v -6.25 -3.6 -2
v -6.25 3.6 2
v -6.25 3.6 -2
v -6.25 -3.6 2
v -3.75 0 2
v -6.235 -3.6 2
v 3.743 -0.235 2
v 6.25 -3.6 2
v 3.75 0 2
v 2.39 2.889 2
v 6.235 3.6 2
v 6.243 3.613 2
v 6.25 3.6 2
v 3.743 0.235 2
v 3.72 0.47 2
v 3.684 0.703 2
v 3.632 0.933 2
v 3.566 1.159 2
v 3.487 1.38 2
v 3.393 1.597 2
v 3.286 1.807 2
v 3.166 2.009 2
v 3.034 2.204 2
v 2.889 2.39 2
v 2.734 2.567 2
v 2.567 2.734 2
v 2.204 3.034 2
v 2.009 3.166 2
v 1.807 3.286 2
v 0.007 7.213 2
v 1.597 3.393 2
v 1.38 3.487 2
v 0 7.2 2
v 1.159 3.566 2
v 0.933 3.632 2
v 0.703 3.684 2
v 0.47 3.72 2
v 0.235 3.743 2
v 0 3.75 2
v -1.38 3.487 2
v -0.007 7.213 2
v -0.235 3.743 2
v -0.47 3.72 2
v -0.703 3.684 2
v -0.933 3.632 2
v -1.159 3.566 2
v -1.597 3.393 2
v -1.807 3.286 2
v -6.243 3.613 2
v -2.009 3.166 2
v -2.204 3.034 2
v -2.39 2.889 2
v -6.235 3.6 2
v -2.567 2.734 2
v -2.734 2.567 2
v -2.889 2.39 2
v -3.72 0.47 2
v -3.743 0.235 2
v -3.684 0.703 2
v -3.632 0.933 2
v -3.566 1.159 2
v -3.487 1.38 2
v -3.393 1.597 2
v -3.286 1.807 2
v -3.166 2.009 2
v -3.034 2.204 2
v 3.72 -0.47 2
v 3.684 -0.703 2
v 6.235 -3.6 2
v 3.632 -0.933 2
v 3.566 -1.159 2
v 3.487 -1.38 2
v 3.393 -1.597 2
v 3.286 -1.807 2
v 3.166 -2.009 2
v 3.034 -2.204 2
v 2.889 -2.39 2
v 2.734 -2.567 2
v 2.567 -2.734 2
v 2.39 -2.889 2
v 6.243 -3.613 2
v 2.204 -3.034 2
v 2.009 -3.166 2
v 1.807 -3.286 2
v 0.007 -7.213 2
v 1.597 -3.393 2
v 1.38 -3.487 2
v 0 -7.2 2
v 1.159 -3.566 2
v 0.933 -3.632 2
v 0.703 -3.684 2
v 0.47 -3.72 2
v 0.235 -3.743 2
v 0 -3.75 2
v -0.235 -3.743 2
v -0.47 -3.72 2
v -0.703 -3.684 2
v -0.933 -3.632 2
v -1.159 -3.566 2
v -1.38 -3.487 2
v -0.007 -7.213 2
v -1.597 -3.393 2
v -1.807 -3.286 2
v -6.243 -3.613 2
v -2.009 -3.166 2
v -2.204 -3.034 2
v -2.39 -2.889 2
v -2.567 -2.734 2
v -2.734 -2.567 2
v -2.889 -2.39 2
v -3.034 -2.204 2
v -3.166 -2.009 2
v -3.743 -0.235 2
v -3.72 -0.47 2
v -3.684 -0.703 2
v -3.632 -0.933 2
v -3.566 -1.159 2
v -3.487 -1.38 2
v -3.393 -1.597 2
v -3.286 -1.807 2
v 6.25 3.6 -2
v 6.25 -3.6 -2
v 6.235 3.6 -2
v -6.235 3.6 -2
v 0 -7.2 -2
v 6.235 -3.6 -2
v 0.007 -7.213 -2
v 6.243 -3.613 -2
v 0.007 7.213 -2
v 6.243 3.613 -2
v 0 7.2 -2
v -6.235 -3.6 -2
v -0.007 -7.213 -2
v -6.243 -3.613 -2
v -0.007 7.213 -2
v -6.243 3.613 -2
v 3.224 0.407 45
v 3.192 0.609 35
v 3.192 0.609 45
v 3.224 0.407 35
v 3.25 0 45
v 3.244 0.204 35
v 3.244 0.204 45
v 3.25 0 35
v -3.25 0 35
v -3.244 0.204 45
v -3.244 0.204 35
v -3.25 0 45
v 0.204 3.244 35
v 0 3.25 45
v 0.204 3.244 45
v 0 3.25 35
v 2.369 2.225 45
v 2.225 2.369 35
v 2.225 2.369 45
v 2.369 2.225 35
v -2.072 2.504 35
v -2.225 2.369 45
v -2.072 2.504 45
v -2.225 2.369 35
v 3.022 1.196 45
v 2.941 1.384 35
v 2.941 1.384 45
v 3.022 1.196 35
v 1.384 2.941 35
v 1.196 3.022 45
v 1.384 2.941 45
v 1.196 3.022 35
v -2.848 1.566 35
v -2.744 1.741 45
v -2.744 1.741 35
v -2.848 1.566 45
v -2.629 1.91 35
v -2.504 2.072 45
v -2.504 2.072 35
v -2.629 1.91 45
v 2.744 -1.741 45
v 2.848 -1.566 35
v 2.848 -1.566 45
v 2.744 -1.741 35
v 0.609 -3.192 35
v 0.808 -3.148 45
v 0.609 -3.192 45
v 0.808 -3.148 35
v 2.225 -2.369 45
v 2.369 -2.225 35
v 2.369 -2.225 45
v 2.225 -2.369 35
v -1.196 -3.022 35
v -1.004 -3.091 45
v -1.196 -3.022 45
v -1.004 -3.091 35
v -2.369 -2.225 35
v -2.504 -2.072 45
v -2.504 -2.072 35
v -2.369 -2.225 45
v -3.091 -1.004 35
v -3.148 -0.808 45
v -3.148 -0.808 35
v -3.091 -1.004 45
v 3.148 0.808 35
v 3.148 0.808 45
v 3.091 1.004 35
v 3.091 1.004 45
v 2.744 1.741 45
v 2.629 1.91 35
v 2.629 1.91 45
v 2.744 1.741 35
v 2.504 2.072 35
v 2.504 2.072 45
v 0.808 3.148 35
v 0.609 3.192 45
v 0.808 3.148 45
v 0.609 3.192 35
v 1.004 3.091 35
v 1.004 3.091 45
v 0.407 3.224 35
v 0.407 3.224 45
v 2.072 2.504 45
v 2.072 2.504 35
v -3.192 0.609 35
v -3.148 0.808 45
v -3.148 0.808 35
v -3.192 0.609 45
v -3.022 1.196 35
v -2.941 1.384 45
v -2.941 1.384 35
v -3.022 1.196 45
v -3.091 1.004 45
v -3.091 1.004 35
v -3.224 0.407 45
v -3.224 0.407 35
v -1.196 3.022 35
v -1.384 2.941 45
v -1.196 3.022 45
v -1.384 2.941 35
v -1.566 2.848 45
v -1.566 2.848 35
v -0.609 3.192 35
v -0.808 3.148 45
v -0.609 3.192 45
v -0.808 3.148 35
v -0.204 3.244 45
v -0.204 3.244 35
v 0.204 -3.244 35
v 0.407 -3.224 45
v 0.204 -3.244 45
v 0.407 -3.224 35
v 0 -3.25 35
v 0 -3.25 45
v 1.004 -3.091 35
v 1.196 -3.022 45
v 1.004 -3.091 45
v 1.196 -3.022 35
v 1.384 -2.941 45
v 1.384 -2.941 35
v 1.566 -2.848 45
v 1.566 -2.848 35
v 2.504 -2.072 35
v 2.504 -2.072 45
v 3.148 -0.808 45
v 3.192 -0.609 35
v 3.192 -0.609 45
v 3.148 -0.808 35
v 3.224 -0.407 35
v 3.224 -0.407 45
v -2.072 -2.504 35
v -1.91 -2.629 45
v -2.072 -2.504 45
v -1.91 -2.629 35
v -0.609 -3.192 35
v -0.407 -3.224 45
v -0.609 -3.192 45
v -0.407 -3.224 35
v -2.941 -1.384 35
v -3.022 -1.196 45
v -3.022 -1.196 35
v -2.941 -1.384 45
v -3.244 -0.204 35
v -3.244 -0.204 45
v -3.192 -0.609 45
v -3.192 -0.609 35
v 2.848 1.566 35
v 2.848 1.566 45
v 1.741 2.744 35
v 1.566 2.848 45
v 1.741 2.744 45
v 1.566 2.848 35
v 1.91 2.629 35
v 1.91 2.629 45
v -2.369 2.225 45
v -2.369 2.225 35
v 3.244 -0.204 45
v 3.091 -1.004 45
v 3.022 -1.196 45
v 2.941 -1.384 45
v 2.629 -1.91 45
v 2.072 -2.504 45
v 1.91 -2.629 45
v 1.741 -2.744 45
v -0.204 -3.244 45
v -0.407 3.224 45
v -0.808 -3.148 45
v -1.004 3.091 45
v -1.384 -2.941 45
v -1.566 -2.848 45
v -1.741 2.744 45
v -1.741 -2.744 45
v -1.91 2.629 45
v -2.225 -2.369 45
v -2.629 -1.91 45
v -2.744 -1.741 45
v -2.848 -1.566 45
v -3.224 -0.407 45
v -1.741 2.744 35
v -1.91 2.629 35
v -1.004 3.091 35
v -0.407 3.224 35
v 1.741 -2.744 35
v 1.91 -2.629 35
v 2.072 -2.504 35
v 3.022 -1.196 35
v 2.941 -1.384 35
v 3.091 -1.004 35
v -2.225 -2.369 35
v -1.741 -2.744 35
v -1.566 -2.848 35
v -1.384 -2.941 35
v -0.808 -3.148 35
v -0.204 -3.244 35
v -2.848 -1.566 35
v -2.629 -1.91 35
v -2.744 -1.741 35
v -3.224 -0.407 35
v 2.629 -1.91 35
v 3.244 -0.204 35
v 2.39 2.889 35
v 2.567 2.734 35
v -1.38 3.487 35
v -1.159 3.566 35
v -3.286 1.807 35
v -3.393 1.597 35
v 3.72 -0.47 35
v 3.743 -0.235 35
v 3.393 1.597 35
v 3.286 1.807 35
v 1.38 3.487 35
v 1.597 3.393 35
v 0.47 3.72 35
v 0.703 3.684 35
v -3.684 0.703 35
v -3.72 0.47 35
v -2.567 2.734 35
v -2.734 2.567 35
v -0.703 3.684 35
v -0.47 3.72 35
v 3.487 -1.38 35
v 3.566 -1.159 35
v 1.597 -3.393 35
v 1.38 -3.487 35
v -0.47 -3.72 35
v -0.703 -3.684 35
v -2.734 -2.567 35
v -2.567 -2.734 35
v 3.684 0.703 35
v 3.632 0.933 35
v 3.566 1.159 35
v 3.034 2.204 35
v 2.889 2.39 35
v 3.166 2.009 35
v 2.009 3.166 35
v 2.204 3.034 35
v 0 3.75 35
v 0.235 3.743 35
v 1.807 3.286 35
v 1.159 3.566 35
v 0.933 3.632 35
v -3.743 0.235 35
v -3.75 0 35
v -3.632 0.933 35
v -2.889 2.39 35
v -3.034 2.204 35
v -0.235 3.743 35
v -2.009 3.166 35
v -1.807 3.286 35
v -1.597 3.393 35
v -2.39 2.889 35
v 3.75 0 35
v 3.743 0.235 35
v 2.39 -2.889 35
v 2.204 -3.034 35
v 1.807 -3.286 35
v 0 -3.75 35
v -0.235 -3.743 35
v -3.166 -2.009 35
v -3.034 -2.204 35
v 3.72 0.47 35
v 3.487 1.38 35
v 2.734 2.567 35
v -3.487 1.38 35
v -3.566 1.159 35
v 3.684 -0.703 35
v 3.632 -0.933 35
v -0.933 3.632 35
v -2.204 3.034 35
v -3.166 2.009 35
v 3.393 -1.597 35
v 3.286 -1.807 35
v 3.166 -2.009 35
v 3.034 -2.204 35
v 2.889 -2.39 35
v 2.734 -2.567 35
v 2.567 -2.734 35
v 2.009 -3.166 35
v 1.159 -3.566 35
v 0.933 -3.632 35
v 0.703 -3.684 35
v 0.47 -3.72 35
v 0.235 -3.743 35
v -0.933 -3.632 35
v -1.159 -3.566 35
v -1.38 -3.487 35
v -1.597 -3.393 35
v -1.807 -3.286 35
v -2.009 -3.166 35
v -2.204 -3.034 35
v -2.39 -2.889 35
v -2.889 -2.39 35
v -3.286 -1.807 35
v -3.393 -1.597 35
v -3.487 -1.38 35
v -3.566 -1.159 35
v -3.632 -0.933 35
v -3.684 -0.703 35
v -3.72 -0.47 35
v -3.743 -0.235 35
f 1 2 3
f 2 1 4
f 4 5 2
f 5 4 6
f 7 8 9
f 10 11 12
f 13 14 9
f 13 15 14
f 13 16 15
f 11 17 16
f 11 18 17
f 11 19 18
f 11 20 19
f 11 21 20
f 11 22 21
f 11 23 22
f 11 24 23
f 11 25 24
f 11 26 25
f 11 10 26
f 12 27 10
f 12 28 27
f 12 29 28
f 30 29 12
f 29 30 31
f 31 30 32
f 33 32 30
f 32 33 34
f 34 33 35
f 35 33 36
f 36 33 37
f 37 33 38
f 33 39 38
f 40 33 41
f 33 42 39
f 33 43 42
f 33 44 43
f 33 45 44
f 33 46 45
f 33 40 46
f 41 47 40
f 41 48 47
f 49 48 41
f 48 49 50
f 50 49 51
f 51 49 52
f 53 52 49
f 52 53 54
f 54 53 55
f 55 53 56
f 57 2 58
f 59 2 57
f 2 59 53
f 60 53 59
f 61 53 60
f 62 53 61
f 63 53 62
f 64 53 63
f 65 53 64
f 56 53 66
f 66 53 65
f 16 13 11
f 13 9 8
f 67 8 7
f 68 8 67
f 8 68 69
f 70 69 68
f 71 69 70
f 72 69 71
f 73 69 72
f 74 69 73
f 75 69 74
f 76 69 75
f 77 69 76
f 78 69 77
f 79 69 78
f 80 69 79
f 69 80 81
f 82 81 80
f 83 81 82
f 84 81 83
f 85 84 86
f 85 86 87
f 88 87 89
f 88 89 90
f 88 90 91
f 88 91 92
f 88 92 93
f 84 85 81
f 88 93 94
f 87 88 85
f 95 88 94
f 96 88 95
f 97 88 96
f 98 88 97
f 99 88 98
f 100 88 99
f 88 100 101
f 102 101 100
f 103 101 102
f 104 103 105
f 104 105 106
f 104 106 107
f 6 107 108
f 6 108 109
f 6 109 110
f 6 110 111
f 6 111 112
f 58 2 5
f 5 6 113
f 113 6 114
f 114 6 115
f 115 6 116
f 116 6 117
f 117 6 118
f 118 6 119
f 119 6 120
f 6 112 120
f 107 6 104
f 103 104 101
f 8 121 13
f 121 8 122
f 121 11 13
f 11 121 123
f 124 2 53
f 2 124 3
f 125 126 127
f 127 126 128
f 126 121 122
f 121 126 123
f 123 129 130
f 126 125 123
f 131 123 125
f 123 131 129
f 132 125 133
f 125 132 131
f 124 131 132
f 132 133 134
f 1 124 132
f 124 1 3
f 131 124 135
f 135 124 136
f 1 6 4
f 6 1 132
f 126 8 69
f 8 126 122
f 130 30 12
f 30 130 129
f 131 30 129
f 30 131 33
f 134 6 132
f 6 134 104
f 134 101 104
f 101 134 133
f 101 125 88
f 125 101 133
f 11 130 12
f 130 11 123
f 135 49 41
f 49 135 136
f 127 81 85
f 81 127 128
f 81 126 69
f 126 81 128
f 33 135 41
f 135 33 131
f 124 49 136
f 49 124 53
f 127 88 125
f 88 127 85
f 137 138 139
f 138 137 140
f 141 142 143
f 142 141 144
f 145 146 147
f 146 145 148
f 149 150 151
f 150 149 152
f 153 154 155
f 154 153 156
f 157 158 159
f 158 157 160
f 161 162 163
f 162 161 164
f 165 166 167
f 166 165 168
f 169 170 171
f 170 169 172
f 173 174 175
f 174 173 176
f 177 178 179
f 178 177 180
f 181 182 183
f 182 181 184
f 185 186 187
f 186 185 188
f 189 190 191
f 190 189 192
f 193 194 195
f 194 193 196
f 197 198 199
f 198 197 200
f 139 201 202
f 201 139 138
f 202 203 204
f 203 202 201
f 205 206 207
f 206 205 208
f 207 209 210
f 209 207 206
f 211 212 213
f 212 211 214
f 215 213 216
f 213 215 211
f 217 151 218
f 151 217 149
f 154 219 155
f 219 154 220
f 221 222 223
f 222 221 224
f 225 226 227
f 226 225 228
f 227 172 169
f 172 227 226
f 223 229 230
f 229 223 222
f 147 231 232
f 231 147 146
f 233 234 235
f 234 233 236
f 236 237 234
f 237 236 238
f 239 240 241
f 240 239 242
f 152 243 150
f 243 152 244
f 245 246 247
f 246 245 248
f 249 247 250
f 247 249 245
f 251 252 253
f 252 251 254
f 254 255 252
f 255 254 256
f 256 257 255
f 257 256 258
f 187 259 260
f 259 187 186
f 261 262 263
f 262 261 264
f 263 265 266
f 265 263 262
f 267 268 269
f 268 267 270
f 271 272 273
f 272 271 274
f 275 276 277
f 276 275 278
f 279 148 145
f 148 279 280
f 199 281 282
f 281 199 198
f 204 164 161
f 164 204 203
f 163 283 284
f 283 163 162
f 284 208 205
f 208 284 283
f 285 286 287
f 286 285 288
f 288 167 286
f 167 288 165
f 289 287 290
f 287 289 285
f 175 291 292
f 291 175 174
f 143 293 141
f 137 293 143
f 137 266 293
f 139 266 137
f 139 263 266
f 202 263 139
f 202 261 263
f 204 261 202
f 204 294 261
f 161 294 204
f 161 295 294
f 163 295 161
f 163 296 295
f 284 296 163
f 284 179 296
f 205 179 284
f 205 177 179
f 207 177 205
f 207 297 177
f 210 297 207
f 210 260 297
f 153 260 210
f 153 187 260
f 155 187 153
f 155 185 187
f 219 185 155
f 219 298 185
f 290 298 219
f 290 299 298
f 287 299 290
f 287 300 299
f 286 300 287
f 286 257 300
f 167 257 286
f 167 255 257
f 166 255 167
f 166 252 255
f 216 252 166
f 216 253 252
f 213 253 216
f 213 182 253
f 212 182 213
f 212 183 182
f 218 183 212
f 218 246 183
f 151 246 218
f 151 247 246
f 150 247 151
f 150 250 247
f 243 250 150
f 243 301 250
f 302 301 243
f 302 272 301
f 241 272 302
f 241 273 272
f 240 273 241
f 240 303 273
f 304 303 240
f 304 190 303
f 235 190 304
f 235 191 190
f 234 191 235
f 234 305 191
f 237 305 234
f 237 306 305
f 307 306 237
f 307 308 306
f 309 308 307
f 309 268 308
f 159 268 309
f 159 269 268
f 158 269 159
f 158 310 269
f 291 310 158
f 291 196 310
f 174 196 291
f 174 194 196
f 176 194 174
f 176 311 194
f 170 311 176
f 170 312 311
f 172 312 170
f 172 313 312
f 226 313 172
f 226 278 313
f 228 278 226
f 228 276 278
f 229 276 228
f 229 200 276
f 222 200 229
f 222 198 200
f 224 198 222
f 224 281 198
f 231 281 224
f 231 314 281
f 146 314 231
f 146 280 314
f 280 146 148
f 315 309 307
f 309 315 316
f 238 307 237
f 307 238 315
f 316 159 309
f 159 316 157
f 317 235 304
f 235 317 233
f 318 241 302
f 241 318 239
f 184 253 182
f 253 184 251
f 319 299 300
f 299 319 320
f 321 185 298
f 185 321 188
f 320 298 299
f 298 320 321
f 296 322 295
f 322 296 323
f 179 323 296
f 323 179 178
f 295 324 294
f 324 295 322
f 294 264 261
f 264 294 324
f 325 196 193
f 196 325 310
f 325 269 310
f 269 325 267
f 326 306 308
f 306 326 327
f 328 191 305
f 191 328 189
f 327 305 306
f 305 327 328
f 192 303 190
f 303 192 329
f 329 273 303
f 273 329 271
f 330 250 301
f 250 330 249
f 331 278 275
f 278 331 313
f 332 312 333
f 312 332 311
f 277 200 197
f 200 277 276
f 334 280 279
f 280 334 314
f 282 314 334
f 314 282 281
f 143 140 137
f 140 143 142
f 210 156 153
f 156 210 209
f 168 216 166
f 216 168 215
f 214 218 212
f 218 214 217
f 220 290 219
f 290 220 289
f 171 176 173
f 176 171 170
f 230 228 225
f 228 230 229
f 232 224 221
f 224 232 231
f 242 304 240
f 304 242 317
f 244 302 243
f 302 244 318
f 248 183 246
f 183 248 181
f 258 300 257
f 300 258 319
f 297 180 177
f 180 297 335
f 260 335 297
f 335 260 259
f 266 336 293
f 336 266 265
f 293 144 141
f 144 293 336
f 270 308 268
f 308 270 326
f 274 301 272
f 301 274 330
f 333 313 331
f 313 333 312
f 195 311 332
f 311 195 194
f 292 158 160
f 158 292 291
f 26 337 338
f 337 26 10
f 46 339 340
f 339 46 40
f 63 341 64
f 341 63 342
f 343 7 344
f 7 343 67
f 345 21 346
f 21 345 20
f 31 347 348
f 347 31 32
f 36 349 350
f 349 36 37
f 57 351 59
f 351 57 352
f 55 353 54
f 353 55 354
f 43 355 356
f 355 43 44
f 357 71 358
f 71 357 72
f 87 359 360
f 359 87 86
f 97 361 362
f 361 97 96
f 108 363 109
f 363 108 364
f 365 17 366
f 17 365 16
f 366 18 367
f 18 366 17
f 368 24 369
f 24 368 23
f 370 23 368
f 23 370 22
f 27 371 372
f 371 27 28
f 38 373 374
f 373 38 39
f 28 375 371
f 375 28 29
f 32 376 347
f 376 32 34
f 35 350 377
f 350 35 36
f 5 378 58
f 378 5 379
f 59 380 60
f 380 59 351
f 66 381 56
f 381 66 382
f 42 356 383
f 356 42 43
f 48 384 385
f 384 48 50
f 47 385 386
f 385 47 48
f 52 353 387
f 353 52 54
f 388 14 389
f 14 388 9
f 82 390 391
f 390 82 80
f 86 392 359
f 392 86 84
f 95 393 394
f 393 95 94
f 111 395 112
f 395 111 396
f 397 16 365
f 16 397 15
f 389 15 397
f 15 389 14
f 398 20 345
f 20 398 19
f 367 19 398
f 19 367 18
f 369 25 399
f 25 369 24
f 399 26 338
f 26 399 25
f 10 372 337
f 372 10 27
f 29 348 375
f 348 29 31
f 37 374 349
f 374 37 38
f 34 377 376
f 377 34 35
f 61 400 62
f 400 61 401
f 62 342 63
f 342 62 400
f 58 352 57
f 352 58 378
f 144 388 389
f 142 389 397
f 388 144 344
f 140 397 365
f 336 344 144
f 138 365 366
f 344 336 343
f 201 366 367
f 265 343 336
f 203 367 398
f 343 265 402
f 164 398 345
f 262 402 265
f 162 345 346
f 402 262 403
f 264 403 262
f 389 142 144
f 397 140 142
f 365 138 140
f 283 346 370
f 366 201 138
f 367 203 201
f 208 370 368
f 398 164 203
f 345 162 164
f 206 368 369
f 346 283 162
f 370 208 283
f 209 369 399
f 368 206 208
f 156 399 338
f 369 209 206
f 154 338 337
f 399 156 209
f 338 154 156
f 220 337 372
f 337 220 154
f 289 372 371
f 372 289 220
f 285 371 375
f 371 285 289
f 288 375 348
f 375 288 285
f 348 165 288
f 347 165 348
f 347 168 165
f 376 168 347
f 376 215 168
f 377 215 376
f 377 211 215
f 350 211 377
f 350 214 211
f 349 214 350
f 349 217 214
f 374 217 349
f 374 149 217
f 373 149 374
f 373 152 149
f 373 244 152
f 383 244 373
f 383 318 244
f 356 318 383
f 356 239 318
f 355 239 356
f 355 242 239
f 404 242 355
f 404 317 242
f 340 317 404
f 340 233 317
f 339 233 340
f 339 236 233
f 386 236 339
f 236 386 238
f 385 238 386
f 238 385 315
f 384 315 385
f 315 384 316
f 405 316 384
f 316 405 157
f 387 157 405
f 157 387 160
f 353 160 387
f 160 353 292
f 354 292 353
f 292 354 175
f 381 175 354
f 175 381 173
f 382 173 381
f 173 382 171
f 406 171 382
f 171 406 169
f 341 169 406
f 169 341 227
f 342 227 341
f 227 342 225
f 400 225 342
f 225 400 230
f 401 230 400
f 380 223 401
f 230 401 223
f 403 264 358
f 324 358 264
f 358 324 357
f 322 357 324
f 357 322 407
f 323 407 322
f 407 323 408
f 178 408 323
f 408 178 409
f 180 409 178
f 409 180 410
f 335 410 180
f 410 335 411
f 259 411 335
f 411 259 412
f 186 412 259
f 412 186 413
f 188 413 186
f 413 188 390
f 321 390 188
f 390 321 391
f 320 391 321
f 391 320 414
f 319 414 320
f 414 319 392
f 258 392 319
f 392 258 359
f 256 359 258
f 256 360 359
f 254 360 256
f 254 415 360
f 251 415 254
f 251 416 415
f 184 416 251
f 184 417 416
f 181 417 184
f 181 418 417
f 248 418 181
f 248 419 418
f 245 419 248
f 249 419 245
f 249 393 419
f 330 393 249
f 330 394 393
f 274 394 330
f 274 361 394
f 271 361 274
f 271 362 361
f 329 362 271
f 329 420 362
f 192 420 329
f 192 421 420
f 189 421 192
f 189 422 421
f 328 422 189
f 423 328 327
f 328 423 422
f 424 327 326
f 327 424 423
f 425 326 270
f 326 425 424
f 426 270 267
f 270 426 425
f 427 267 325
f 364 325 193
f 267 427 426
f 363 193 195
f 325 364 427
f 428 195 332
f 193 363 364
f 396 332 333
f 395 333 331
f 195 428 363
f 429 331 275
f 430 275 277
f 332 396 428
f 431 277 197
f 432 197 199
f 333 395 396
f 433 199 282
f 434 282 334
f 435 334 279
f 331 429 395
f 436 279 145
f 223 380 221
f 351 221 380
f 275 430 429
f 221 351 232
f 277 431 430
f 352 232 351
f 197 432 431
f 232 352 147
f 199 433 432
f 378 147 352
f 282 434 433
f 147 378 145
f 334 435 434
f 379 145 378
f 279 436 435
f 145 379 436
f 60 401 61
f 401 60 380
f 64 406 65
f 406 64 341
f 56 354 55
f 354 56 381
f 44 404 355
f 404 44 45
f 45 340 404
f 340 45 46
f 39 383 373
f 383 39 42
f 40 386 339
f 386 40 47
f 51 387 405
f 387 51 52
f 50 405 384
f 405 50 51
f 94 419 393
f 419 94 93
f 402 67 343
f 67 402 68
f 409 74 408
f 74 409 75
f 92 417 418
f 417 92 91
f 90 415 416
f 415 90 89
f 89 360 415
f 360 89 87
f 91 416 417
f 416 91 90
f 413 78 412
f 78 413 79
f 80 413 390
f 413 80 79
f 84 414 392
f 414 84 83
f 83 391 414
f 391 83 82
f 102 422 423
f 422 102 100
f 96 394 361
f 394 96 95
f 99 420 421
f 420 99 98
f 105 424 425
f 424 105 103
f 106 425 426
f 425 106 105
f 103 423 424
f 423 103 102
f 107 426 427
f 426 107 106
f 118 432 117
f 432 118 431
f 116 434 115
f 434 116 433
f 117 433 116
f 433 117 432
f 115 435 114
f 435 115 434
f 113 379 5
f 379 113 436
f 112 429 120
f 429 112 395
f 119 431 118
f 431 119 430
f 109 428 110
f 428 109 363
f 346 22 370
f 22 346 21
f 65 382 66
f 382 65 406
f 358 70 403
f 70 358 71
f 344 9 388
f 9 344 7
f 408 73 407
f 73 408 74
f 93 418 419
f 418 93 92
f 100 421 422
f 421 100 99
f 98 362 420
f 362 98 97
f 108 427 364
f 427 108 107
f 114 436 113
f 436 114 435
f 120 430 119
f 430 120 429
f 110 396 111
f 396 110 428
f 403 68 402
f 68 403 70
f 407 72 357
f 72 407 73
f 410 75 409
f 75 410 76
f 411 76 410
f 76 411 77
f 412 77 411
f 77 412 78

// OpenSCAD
$fn=100;
cube([12.5,7.2,4], center=true);
rotate([0,0,60]) cube([12.5,7.2,4], center=true);
rotate([0,0,120]) cube([12.5,7.2,4], center=true);
cylinder(d=6.5,h=45);
cylinder(d=7.5,h=35);
